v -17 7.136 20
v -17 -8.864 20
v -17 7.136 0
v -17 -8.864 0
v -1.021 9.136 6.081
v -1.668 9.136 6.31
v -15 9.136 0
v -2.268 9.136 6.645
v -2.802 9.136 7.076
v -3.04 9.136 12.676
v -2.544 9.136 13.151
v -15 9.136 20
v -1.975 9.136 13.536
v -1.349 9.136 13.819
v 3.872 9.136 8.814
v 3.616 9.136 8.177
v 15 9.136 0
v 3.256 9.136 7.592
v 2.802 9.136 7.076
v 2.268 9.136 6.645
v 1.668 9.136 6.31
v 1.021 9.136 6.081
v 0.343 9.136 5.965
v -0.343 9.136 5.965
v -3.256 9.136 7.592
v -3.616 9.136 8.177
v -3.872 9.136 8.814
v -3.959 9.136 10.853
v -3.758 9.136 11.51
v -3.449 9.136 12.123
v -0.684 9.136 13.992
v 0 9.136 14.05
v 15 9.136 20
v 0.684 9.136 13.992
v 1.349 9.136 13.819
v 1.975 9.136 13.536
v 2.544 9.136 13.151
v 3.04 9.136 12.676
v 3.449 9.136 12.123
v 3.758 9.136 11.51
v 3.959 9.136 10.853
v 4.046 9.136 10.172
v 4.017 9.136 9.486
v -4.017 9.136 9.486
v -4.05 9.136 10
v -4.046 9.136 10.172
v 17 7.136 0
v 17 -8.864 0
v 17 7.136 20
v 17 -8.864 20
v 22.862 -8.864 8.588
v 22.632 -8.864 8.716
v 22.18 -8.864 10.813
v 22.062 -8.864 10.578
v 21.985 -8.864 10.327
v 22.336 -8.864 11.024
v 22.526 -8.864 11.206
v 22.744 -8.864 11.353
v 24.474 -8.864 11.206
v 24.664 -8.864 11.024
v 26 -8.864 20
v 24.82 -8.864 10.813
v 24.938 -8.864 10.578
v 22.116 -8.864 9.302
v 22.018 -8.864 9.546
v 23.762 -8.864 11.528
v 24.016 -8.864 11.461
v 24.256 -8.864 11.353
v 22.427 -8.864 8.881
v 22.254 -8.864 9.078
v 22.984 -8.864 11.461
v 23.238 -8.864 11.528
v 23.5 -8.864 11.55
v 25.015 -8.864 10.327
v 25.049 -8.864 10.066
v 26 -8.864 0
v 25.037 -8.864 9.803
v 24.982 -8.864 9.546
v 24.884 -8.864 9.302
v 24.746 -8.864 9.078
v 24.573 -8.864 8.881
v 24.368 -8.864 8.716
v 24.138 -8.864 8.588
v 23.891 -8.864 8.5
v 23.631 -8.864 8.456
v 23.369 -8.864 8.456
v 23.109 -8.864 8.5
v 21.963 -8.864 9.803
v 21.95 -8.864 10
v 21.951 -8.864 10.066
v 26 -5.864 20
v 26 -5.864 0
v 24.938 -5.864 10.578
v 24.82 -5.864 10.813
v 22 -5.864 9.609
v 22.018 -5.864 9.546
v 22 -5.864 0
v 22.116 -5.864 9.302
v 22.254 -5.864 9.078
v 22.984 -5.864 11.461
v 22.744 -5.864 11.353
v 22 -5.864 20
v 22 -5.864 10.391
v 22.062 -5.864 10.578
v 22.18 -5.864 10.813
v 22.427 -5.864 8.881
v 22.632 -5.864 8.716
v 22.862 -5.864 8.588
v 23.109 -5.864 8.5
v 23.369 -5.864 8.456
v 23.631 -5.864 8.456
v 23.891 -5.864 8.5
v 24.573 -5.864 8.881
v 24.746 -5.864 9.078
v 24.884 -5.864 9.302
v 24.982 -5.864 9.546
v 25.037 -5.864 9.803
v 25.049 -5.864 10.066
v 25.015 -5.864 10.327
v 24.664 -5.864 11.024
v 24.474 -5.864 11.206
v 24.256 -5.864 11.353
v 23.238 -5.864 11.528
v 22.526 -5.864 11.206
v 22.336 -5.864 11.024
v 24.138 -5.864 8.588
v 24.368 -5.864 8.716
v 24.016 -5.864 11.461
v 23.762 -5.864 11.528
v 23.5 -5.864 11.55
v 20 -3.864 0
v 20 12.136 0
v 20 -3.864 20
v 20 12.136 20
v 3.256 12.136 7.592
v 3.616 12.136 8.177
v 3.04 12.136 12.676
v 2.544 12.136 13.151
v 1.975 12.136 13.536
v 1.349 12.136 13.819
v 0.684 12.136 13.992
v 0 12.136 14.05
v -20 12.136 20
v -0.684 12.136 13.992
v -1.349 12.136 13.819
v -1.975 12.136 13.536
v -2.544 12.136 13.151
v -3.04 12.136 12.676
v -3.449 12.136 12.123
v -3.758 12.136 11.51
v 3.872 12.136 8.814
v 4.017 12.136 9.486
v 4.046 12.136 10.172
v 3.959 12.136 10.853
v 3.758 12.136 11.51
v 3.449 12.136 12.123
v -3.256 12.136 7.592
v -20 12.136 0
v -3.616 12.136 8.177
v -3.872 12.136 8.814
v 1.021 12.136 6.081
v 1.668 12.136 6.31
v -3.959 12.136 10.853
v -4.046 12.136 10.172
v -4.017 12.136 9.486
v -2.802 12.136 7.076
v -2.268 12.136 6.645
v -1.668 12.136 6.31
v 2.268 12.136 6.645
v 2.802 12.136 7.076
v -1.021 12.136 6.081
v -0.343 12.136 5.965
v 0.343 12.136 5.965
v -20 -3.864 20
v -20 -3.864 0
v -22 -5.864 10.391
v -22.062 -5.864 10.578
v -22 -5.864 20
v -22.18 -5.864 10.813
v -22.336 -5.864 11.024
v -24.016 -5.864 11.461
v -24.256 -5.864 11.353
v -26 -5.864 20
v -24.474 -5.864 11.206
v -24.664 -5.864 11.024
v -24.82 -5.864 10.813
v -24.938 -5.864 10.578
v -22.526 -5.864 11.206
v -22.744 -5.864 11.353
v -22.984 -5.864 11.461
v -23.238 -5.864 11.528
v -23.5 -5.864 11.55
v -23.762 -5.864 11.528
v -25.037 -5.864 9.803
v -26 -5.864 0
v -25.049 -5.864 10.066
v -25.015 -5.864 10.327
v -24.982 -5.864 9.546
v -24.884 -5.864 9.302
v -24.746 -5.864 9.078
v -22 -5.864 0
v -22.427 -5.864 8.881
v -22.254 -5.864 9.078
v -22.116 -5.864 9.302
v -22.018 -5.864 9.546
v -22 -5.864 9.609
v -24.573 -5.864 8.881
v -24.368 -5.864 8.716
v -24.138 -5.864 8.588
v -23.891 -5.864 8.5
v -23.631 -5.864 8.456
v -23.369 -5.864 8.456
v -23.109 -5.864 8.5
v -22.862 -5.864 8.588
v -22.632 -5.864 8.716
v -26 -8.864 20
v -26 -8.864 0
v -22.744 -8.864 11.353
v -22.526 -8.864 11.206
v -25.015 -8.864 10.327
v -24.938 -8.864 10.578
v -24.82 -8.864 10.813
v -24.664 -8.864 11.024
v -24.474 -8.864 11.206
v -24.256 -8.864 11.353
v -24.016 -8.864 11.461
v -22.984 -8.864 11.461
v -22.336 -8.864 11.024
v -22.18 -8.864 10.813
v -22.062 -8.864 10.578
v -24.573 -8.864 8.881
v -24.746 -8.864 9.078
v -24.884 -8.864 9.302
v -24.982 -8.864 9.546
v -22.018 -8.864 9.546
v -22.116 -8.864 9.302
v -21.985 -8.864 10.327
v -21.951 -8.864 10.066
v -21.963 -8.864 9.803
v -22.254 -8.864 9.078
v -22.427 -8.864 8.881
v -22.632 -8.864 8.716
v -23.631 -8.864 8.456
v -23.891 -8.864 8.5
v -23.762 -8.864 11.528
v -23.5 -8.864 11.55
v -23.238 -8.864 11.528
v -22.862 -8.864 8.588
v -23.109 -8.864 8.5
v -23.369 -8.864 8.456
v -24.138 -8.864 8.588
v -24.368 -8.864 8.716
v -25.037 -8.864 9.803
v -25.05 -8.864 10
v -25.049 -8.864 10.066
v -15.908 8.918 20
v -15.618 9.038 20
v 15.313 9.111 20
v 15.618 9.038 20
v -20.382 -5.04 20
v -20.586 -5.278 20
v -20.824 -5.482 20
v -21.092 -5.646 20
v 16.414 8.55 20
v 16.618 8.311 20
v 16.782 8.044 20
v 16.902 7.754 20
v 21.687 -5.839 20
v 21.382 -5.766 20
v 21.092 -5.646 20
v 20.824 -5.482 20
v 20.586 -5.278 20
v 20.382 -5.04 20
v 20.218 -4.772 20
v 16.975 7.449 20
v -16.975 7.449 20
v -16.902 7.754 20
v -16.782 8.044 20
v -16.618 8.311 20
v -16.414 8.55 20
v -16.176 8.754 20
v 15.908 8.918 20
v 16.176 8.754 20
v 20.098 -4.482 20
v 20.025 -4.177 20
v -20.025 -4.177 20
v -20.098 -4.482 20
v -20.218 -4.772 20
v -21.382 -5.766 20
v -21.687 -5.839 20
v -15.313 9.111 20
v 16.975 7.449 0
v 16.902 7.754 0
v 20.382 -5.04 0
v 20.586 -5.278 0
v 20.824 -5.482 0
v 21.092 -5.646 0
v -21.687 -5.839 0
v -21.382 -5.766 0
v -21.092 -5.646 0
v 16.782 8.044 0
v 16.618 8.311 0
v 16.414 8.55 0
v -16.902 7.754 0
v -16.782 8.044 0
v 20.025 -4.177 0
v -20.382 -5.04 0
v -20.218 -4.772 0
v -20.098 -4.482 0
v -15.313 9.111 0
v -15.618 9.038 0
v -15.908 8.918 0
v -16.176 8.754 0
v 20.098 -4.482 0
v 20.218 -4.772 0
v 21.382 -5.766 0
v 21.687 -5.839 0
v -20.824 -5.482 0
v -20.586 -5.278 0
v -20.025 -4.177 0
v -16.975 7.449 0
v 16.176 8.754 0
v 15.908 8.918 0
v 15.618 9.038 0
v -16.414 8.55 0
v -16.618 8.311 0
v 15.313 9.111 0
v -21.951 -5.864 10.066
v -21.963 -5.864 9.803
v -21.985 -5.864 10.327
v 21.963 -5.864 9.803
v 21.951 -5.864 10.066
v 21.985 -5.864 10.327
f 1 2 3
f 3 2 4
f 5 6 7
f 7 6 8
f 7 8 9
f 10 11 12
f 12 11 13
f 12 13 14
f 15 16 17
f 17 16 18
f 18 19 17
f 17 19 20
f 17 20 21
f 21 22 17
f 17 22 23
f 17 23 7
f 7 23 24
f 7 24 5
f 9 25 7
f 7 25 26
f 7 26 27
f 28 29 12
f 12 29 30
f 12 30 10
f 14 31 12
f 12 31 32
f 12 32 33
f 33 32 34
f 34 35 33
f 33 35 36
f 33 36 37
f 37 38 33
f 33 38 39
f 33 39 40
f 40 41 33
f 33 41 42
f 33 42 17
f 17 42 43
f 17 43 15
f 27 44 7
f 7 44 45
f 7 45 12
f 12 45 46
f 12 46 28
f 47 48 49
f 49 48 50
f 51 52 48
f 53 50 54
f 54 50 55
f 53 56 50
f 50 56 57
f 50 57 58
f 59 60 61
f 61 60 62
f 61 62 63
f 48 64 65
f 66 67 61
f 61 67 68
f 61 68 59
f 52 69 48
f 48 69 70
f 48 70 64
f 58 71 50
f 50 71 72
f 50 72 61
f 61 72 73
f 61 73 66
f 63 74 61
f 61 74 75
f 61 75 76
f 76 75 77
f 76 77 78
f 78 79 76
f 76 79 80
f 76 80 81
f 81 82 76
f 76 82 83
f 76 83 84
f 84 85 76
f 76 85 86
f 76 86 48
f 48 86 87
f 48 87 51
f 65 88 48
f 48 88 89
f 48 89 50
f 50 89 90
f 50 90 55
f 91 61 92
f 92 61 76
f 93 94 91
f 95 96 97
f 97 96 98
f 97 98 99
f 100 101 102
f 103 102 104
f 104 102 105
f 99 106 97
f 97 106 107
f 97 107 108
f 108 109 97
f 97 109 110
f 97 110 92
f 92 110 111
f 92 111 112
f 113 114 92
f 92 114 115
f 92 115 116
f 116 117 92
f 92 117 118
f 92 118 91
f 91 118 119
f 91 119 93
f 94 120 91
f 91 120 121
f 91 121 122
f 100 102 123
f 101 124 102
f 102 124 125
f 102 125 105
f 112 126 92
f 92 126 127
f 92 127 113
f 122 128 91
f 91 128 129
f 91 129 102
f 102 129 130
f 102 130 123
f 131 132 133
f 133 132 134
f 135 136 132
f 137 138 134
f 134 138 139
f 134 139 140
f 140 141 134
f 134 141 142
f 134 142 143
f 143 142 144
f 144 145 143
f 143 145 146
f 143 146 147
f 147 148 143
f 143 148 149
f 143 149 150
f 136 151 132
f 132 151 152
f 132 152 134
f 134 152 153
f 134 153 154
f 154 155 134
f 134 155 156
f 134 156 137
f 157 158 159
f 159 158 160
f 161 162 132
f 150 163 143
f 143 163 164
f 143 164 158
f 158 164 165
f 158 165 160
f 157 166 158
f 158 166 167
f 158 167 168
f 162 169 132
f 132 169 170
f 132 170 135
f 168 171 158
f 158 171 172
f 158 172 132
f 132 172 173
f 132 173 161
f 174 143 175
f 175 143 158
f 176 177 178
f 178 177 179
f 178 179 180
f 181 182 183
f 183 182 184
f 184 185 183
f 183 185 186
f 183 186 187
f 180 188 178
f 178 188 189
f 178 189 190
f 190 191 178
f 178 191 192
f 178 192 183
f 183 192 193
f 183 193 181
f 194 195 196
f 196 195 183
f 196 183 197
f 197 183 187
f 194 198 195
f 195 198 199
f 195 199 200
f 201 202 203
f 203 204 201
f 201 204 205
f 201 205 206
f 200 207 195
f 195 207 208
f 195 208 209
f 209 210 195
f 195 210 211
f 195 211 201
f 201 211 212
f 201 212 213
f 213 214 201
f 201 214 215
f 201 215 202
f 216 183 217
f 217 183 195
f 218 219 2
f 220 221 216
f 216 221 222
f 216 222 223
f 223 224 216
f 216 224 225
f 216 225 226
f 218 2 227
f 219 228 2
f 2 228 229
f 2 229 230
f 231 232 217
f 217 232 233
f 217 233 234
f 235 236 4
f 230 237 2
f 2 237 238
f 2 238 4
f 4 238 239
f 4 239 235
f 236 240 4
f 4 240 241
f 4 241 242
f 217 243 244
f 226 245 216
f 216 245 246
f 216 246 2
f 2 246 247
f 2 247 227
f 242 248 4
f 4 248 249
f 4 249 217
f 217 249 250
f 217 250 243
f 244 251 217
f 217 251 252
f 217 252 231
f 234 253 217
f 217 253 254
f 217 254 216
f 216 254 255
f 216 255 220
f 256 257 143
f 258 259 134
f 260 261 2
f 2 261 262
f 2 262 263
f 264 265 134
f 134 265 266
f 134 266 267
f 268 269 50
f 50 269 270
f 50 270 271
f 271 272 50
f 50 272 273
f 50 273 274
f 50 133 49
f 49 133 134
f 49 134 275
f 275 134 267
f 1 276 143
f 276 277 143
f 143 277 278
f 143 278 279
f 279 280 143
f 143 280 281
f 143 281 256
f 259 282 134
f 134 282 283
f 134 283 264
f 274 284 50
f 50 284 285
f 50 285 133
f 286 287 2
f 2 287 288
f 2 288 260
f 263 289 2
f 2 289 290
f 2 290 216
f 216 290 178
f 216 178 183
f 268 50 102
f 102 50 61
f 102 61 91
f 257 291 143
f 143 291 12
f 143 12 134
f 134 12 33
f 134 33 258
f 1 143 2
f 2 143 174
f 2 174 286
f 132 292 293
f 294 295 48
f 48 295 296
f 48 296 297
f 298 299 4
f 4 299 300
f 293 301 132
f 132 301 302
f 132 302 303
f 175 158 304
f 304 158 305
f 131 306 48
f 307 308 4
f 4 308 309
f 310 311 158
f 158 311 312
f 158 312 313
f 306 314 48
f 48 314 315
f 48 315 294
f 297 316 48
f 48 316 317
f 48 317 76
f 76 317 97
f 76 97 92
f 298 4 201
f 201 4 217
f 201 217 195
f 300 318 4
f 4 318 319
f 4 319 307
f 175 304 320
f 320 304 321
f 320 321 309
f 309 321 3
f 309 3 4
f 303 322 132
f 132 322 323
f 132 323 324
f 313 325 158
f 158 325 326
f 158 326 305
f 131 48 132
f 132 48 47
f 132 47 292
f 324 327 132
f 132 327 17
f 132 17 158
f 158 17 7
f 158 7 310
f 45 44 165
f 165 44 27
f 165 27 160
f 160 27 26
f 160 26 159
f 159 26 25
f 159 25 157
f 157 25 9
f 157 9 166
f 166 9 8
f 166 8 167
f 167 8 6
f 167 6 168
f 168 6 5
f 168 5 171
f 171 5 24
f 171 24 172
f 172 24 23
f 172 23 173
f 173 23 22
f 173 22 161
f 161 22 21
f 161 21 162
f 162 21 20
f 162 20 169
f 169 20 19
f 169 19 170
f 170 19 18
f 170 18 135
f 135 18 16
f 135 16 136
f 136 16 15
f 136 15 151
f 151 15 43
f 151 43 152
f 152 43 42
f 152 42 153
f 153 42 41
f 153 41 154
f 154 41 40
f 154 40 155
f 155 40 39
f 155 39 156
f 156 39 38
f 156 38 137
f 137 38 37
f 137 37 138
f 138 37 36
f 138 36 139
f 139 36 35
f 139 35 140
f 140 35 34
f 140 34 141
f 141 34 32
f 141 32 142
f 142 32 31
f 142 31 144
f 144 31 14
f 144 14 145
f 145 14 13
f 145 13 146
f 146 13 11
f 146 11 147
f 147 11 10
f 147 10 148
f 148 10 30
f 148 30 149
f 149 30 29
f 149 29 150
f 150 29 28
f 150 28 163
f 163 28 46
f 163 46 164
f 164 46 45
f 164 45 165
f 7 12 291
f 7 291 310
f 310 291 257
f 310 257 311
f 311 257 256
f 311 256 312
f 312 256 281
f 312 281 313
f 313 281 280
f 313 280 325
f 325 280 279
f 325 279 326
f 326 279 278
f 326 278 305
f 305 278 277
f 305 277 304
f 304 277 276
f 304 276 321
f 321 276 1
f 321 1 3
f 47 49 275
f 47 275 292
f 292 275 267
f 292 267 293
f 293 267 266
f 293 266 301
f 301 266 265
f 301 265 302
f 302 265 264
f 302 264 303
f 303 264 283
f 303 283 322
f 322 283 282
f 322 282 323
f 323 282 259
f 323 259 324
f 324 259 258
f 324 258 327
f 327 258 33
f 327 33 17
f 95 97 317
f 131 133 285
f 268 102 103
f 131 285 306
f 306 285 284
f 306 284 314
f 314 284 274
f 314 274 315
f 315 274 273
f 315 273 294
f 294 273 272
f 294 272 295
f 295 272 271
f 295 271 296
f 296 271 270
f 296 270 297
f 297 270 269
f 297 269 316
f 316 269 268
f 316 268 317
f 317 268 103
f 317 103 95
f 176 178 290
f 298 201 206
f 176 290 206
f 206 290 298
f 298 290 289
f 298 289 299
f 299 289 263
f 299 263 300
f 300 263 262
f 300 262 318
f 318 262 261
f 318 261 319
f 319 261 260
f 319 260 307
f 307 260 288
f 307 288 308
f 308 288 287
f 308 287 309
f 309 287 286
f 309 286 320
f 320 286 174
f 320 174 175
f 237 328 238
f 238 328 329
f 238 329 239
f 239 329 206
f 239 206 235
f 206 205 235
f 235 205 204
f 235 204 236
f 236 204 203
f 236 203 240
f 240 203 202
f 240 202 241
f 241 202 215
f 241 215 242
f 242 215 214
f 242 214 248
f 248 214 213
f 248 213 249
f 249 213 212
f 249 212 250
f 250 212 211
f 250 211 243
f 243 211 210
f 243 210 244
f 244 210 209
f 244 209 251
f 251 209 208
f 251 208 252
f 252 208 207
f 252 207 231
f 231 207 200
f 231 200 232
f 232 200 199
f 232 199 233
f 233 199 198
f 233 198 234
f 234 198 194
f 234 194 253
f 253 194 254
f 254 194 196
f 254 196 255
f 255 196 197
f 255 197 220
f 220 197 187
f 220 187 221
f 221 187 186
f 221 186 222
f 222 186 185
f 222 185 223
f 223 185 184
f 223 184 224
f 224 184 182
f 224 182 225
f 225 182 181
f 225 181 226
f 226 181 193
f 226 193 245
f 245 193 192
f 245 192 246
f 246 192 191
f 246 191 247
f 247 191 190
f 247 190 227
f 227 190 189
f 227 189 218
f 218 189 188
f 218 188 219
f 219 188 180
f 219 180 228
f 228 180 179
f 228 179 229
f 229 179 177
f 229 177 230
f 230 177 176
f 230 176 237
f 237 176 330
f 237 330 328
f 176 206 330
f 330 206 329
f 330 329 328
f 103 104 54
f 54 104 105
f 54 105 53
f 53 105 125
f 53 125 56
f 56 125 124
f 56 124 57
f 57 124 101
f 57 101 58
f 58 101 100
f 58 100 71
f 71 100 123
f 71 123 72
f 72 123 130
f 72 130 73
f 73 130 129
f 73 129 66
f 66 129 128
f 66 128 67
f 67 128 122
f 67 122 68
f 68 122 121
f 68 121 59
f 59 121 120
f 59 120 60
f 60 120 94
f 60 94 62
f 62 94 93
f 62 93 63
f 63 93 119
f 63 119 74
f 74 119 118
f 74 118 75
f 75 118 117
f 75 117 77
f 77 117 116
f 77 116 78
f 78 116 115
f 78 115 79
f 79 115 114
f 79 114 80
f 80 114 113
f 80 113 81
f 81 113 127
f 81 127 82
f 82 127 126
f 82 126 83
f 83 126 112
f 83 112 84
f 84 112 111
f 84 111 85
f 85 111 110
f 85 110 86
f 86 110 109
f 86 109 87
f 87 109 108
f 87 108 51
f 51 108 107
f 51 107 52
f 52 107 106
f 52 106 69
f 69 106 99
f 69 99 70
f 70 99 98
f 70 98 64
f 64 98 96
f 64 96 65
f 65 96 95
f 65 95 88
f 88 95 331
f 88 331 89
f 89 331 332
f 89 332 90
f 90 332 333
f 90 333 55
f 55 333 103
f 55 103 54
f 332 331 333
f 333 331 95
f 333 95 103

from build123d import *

# Parameters (mm, degrees)
BOSS_EXTRUDE1_DEPTH = 20
SKETCH2_R           = 4.05
CUT_EXTRUDE1_DEPTH  = 16
FILLET1_R           = 2
SKETCH3_R           = 1.55
CUT_EXTRUDE2_DEPTH  = 16


with BuildPart() as part:
    # Sketch1 → Boss-Extrude1 (new body)
    with BuildSketch(Plane.XY):
        Polygon((-17, -8.864115169), (-26, -8.864115169), (-26, -5.864115169), (-20, -5.864115169), (-20, 12.135884831), (20, 12.135884831), (20, -5.864115169), (26, -5.864115169), (26, -8.864115169), (17, -8.864115169), (17, 9.135884831), (-17, 9.135884831), align=None)
    extrude(amount=BOSS_EXTRUDE1_DEPTH)

    # Sketch2 → Cut-Extrude1 (cut)
    with BuildSketch(Plane(origin=(0, 12.135884831, 0), x_dir=(1, 0, 0), z_dir=(0, 1, 0))):
        with Locations(Location((0, -10, 0), (0, 0, 270))):
            Circle(SKETCH2_R)
    extrude(amount=-CUT_EXTRUDE1_DEPTH, mode=Mode.SUBTRACT)

    # Fillet1
    fillet1_edges = [part.edges().sort_by_distance(p)[0] for p in [
        (-20, -5.864115169, 10),
        (20, -5.864115169, 10),
        (17, 9.135884831, 10),
        (-17, 9.135884831, 10),
    ]]
    fillet(fillet1_edges, radius=FILLET1_R)

    # Sketch3 → Cut-Extrude2 (cut)
    with BuildSketch(Plane(origin=(0, -5.864115169, 0), x_dir=(1, 0, 0), z_dir=(0, 1, 0))):
        with Locations(Location((-23.5, -10, 0), (0, 0, 345.407449398))):
            Circle(SKETCH3_R)
        with Locations(Location((23.5, -10, 0), (0, 0, 194.592550602))):
            Circle(SKETCH3_R)
    extrude(amount=-CUT_EXTRUDE2_DEPTH, mode=Mode.SUBTRACT)


solid = part.part
